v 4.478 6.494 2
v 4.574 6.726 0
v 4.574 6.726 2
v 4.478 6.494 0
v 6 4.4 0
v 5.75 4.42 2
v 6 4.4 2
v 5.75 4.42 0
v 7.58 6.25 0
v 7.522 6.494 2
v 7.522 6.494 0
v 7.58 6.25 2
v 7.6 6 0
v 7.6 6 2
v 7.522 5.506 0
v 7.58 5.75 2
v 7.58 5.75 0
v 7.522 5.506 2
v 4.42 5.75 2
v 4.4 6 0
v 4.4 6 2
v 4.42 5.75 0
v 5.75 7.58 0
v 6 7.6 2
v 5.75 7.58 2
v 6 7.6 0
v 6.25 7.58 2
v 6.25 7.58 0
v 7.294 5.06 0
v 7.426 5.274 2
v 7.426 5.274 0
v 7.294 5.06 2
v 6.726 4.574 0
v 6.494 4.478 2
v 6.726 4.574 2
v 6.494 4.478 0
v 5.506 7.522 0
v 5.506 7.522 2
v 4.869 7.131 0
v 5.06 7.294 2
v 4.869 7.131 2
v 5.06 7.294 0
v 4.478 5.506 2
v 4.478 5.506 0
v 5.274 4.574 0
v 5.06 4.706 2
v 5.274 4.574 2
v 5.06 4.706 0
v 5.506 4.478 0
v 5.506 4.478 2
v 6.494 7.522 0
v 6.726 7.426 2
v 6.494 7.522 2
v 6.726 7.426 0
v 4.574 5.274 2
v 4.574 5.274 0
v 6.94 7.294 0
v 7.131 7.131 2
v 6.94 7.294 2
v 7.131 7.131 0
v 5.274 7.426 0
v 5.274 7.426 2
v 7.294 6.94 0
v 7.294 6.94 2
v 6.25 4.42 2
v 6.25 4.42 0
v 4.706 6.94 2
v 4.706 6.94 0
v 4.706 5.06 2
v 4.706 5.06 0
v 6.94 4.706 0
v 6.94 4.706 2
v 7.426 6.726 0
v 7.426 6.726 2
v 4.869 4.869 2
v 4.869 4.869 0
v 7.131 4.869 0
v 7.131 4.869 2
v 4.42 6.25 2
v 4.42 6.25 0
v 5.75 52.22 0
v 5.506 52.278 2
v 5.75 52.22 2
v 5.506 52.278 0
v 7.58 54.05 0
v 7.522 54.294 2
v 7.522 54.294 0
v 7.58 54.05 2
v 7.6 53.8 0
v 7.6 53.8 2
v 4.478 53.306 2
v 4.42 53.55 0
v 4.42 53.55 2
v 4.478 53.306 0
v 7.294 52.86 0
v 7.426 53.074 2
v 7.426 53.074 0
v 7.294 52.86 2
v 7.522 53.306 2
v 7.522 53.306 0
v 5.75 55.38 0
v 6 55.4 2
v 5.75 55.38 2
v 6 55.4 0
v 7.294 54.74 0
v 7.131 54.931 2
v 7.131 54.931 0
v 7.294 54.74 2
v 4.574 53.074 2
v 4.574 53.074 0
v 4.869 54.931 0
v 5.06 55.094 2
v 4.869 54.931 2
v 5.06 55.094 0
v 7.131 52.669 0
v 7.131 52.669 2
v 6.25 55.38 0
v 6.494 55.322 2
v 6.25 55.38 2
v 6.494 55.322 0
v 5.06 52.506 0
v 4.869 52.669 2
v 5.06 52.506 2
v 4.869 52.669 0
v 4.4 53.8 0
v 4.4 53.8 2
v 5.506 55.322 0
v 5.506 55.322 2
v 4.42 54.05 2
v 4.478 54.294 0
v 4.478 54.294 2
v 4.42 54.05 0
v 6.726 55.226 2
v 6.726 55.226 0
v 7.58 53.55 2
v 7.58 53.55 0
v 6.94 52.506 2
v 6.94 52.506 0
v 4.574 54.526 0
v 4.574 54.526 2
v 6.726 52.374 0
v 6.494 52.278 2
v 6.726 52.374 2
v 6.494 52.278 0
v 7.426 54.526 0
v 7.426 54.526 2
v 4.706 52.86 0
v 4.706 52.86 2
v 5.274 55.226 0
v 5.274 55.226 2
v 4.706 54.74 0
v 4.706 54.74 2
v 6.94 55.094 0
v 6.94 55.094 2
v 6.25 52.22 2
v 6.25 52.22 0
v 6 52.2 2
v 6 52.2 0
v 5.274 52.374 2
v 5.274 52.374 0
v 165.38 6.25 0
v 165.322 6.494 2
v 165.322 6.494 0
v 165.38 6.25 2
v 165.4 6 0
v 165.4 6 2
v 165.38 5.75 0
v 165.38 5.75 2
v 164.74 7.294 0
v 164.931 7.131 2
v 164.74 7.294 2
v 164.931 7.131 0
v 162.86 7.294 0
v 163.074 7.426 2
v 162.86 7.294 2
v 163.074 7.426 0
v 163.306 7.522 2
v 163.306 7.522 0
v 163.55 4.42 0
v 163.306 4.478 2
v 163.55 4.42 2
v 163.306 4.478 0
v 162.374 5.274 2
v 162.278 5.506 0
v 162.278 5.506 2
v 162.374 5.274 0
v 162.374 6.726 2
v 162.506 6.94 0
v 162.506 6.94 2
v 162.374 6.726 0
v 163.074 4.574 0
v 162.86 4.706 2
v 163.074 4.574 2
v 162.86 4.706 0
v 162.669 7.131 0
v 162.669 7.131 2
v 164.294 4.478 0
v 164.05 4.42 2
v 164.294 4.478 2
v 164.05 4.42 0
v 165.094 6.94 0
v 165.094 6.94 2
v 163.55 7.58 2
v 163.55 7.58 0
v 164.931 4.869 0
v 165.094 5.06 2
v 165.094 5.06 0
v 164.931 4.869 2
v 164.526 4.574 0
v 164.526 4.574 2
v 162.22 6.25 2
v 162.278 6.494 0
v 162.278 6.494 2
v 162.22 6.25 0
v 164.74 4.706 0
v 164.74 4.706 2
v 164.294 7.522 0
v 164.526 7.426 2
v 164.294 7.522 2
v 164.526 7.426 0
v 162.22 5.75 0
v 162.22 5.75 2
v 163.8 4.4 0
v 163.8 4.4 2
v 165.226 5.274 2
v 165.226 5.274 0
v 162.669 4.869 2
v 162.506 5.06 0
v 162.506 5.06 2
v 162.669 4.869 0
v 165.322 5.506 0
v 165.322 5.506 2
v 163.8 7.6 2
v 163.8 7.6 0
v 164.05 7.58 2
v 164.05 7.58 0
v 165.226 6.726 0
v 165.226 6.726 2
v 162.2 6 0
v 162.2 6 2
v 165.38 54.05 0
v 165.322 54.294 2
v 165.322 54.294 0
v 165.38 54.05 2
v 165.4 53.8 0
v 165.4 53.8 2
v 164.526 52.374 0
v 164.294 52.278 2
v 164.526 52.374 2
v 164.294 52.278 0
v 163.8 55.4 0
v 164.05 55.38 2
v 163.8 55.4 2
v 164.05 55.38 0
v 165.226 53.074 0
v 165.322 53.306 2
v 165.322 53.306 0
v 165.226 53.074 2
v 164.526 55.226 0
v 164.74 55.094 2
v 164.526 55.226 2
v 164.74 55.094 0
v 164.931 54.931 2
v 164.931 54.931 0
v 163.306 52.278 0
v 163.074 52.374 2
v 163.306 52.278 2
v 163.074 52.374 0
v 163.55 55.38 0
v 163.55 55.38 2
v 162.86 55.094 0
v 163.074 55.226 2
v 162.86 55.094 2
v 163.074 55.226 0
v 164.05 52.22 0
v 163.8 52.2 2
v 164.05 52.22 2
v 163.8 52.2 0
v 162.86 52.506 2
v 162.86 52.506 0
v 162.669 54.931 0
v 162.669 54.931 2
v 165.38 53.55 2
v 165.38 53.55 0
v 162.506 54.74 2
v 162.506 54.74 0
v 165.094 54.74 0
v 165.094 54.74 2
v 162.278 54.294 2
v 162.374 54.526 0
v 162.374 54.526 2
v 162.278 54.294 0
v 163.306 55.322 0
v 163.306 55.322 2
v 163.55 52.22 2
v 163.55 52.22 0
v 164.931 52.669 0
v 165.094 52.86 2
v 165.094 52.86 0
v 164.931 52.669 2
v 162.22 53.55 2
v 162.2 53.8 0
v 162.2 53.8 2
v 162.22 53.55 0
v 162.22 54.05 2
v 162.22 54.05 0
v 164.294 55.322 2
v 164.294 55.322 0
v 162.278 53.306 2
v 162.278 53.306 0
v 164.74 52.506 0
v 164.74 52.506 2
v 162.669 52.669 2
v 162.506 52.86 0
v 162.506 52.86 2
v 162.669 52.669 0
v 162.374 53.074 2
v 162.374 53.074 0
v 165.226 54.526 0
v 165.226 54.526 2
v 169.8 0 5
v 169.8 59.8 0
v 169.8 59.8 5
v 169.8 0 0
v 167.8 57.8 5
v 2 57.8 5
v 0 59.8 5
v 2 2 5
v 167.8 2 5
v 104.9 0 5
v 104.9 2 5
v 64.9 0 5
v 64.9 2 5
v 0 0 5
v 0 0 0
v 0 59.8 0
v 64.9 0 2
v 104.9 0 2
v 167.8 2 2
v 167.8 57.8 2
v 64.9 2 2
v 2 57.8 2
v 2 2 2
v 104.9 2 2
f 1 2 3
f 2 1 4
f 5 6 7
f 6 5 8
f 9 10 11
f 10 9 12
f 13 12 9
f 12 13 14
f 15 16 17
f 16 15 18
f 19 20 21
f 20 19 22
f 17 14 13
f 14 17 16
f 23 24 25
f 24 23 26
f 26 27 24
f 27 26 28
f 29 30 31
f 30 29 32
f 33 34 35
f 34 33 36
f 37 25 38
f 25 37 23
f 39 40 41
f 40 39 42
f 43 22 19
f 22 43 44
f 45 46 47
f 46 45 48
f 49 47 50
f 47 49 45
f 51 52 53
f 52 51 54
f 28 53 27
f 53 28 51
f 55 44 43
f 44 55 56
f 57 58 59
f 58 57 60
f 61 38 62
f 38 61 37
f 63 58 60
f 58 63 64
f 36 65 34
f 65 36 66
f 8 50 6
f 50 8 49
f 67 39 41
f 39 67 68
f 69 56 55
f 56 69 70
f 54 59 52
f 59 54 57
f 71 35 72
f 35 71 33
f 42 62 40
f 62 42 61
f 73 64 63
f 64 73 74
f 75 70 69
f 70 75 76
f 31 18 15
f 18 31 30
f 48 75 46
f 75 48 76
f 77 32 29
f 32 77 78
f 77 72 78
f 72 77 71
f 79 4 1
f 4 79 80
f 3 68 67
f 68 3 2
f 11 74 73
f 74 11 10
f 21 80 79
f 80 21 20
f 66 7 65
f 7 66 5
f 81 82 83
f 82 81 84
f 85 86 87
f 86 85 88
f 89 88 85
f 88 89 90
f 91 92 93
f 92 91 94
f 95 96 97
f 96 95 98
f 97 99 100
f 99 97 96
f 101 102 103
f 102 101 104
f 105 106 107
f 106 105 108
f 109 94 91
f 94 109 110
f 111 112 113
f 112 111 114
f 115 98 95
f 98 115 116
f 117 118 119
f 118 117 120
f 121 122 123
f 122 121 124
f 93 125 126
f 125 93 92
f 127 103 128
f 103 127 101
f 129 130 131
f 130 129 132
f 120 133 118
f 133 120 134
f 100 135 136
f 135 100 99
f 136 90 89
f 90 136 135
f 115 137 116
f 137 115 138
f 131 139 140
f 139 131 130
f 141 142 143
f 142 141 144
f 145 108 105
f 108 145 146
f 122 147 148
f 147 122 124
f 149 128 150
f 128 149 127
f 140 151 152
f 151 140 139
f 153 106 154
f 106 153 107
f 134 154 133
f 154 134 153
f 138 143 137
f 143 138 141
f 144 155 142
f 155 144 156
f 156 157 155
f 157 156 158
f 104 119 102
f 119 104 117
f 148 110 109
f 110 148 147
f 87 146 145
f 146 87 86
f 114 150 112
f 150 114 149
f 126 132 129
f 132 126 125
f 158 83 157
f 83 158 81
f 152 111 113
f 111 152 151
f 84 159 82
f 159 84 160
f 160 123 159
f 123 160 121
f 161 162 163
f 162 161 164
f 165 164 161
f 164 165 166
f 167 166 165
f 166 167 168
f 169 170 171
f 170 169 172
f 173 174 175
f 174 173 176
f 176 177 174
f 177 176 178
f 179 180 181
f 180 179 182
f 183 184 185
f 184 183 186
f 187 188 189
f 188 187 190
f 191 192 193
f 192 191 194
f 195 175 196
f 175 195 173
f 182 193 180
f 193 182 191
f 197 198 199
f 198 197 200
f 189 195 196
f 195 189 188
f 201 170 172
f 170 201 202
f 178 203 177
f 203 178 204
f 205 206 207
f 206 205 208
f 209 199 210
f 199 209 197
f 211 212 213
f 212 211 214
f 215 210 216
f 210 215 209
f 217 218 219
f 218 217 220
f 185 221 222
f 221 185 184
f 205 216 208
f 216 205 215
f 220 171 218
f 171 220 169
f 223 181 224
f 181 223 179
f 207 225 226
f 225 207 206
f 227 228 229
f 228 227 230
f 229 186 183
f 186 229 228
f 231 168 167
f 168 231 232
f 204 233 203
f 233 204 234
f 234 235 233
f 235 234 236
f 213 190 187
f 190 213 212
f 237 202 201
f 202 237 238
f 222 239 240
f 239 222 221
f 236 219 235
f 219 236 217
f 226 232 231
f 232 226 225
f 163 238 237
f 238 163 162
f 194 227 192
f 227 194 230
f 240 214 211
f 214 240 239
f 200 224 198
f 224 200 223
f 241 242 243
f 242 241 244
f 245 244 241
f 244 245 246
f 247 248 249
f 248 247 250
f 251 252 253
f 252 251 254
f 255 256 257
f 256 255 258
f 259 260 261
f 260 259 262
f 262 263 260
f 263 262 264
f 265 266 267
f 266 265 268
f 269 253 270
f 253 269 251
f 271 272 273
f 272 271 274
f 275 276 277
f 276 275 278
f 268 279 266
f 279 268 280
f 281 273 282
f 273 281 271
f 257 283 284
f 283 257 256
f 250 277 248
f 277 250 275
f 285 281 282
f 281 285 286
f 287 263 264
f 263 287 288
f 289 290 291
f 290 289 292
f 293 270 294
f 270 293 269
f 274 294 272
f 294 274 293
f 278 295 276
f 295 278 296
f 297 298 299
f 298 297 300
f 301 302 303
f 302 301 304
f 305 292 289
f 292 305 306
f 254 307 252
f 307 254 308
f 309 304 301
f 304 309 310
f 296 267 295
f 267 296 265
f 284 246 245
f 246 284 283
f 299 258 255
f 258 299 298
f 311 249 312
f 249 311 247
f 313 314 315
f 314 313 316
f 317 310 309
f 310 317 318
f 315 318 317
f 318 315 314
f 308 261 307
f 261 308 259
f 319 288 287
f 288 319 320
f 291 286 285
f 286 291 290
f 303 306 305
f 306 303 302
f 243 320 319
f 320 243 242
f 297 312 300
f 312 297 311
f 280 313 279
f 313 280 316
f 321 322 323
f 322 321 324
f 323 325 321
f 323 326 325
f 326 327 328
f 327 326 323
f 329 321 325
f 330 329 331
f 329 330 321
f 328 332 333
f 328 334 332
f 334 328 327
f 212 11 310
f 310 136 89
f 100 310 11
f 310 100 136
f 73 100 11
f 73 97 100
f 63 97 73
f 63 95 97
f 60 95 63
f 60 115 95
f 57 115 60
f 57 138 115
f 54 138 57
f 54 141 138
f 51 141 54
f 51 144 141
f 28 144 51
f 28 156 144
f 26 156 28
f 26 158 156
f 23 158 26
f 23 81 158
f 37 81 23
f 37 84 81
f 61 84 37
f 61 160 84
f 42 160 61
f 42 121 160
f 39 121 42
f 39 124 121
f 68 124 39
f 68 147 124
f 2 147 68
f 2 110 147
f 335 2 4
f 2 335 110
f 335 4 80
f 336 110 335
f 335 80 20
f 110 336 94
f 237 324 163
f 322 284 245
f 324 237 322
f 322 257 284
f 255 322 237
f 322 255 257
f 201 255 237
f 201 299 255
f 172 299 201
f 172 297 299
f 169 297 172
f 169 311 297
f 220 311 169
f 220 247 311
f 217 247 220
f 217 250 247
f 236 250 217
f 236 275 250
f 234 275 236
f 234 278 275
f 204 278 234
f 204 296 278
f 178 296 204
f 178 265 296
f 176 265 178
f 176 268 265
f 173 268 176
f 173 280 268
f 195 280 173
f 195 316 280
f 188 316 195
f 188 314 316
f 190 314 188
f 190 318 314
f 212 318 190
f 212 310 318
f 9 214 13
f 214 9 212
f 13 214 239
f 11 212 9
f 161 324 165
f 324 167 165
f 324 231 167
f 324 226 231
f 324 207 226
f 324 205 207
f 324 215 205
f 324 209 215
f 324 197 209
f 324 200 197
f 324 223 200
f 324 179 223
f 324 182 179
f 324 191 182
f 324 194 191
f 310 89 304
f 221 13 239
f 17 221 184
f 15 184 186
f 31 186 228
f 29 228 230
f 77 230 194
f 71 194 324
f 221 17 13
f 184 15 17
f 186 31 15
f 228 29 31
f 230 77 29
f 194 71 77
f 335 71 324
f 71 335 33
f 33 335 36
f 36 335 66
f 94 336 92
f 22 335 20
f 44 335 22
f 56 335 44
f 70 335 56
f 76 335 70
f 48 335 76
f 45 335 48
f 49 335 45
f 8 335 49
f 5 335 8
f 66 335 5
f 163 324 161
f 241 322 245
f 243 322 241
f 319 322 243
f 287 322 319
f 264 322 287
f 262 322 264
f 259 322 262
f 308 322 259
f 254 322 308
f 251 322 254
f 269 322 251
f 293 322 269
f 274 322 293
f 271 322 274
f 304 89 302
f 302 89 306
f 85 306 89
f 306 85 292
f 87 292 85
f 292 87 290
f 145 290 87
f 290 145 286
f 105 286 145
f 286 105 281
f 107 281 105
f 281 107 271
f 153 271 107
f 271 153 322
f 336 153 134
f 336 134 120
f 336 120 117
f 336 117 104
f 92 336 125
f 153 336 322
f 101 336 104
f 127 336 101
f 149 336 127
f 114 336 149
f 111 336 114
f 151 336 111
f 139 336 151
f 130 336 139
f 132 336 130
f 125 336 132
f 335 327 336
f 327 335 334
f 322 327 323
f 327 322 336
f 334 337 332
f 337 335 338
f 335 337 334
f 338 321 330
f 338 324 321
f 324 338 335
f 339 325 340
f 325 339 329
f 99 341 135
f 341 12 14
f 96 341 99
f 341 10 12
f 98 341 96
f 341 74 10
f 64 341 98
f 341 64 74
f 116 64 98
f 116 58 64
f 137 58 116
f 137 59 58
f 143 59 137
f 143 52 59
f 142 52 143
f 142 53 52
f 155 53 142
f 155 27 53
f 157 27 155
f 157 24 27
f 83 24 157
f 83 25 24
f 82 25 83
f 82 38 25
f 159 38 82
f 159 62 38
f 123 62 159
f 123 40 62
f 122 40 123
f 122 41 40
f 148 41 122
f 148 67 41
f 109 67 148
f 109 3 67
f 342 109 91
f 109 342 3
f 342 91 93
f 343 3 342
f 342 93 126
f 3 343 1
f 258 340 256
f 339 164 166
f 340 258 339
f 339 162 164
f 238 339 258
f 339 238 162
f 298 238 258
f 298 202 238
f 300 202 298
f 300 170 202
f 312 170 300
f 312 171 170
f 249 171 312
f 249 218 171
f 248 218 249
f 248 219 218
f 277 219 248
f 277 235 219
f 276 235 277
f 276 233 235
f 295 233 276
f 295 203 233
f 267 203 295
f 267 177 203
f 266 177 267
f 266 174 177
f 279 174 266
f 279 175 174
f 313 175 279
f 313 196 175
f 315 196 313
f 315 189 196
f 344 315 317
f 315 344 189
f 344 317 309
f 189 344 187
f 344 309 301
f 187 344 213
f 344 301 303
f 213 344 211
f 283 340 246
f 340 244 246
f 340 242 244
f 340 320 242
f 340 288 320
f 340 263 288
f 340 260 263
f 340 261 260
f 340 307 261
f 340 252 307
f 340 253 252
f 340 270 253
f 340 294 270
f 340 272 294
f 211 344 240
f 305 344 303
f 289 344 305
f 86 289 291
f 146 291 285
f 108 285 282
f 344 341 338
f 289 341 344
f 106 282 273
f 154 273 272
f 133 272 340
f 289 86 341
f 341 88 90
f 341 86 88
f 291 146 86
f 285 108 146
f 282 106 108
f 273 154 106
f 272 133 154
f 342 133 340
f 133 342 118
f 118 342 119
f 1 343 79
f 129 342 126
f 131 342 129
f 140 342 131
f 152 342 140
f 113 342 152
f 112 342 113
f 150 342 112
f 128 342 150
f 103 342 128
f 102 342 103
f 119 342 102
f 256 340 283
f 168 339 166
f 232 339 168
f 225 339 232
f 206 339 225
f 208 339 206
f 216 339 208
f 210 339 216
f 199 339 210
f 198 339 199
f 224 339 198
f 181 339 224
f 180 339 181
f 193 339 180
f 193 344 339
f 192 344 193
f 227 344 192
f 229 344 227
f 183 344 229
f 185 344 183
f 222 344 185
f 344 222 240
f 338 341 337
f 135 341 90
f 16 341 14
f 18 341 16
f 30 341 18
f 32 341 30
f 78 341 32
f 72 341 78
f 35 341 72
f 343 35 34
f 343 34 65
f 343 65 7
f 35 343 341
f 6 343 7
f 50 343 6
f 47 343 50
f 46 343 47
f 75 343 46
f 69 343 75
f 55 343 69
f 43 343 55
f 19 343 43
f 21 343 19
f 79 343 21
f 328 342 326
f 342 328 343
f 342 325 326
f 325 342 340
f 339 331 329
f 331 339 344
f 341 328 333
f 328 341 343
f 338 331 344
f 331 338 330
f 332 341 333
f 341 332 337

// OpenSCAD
// Bandeja aberta pra protoboard 830 pontos — peça de teste
// Base aberta = Arduino ja tem modelo pronto (Cults3D); esta peça complementa
// segurando o protoboard ao lado, sem tampa, fiacao toda visivel por cima.
// Medidas de placa padrao "full-size" 830 pontos: 165 x 55 x 8.5mm

// --- Parametros do protoboard ---
pb_l = 165;
pb_w = 55;
pb_h = 8.5;

// --- Parametros da bandeja ---
clearance = 0.4;   // folga por lado pra encaixar sem forcar
wall_t    = 2;      // espessura da parede
floor_t   = 2;      // espessura do fundo
lip_h     = 3;       // altura da parede (segura so a base do protoboard, resto fica exposto)
slot_w    = 40;      // largura do rasgo pra saida dos fios, numa parede longa
hole_d    = 3.2;     // furo pra parafuso M3 (fixar na bancada)
hole_inset = 6;       // distancia do furo ate a quina

$fn = 40;

outer_l = pb_l + 2*clearance + 2*wall_t;
outer_w = pb_w + 2*clearance + 2*wall_t;
total_h = floor_t + lip_h;

module tray() {
    difference() {
        // bloco externo
        cube([outer_l, outer_w, total_h]);

        // bolsao interno onde o protoboard encaixa
        translate([wall_t, wall_t, floor_t])
            cube([pb_l + 2*clearance, pb_w + 2*clearance, lip_h + 1]);

        // rasgo pra fios saírem por uma parede longa (lado que fica de frente pro Arduino)
        translate([outer_l/2 - slot_w/2, -1, floor_t])
            cube([slot_w, wall_t + 2, lip_h + 1]);

        // furos de fixacao nos 4 cantos
        for (x = [hole_inset, outer_l - hole_inset])
            for (y = [hole_inset, outer_w - hole_inset])
                translate([x, y, -1])
                    cylinder(d = hole_d, h = total_h + 2);
    }
}

tray();
